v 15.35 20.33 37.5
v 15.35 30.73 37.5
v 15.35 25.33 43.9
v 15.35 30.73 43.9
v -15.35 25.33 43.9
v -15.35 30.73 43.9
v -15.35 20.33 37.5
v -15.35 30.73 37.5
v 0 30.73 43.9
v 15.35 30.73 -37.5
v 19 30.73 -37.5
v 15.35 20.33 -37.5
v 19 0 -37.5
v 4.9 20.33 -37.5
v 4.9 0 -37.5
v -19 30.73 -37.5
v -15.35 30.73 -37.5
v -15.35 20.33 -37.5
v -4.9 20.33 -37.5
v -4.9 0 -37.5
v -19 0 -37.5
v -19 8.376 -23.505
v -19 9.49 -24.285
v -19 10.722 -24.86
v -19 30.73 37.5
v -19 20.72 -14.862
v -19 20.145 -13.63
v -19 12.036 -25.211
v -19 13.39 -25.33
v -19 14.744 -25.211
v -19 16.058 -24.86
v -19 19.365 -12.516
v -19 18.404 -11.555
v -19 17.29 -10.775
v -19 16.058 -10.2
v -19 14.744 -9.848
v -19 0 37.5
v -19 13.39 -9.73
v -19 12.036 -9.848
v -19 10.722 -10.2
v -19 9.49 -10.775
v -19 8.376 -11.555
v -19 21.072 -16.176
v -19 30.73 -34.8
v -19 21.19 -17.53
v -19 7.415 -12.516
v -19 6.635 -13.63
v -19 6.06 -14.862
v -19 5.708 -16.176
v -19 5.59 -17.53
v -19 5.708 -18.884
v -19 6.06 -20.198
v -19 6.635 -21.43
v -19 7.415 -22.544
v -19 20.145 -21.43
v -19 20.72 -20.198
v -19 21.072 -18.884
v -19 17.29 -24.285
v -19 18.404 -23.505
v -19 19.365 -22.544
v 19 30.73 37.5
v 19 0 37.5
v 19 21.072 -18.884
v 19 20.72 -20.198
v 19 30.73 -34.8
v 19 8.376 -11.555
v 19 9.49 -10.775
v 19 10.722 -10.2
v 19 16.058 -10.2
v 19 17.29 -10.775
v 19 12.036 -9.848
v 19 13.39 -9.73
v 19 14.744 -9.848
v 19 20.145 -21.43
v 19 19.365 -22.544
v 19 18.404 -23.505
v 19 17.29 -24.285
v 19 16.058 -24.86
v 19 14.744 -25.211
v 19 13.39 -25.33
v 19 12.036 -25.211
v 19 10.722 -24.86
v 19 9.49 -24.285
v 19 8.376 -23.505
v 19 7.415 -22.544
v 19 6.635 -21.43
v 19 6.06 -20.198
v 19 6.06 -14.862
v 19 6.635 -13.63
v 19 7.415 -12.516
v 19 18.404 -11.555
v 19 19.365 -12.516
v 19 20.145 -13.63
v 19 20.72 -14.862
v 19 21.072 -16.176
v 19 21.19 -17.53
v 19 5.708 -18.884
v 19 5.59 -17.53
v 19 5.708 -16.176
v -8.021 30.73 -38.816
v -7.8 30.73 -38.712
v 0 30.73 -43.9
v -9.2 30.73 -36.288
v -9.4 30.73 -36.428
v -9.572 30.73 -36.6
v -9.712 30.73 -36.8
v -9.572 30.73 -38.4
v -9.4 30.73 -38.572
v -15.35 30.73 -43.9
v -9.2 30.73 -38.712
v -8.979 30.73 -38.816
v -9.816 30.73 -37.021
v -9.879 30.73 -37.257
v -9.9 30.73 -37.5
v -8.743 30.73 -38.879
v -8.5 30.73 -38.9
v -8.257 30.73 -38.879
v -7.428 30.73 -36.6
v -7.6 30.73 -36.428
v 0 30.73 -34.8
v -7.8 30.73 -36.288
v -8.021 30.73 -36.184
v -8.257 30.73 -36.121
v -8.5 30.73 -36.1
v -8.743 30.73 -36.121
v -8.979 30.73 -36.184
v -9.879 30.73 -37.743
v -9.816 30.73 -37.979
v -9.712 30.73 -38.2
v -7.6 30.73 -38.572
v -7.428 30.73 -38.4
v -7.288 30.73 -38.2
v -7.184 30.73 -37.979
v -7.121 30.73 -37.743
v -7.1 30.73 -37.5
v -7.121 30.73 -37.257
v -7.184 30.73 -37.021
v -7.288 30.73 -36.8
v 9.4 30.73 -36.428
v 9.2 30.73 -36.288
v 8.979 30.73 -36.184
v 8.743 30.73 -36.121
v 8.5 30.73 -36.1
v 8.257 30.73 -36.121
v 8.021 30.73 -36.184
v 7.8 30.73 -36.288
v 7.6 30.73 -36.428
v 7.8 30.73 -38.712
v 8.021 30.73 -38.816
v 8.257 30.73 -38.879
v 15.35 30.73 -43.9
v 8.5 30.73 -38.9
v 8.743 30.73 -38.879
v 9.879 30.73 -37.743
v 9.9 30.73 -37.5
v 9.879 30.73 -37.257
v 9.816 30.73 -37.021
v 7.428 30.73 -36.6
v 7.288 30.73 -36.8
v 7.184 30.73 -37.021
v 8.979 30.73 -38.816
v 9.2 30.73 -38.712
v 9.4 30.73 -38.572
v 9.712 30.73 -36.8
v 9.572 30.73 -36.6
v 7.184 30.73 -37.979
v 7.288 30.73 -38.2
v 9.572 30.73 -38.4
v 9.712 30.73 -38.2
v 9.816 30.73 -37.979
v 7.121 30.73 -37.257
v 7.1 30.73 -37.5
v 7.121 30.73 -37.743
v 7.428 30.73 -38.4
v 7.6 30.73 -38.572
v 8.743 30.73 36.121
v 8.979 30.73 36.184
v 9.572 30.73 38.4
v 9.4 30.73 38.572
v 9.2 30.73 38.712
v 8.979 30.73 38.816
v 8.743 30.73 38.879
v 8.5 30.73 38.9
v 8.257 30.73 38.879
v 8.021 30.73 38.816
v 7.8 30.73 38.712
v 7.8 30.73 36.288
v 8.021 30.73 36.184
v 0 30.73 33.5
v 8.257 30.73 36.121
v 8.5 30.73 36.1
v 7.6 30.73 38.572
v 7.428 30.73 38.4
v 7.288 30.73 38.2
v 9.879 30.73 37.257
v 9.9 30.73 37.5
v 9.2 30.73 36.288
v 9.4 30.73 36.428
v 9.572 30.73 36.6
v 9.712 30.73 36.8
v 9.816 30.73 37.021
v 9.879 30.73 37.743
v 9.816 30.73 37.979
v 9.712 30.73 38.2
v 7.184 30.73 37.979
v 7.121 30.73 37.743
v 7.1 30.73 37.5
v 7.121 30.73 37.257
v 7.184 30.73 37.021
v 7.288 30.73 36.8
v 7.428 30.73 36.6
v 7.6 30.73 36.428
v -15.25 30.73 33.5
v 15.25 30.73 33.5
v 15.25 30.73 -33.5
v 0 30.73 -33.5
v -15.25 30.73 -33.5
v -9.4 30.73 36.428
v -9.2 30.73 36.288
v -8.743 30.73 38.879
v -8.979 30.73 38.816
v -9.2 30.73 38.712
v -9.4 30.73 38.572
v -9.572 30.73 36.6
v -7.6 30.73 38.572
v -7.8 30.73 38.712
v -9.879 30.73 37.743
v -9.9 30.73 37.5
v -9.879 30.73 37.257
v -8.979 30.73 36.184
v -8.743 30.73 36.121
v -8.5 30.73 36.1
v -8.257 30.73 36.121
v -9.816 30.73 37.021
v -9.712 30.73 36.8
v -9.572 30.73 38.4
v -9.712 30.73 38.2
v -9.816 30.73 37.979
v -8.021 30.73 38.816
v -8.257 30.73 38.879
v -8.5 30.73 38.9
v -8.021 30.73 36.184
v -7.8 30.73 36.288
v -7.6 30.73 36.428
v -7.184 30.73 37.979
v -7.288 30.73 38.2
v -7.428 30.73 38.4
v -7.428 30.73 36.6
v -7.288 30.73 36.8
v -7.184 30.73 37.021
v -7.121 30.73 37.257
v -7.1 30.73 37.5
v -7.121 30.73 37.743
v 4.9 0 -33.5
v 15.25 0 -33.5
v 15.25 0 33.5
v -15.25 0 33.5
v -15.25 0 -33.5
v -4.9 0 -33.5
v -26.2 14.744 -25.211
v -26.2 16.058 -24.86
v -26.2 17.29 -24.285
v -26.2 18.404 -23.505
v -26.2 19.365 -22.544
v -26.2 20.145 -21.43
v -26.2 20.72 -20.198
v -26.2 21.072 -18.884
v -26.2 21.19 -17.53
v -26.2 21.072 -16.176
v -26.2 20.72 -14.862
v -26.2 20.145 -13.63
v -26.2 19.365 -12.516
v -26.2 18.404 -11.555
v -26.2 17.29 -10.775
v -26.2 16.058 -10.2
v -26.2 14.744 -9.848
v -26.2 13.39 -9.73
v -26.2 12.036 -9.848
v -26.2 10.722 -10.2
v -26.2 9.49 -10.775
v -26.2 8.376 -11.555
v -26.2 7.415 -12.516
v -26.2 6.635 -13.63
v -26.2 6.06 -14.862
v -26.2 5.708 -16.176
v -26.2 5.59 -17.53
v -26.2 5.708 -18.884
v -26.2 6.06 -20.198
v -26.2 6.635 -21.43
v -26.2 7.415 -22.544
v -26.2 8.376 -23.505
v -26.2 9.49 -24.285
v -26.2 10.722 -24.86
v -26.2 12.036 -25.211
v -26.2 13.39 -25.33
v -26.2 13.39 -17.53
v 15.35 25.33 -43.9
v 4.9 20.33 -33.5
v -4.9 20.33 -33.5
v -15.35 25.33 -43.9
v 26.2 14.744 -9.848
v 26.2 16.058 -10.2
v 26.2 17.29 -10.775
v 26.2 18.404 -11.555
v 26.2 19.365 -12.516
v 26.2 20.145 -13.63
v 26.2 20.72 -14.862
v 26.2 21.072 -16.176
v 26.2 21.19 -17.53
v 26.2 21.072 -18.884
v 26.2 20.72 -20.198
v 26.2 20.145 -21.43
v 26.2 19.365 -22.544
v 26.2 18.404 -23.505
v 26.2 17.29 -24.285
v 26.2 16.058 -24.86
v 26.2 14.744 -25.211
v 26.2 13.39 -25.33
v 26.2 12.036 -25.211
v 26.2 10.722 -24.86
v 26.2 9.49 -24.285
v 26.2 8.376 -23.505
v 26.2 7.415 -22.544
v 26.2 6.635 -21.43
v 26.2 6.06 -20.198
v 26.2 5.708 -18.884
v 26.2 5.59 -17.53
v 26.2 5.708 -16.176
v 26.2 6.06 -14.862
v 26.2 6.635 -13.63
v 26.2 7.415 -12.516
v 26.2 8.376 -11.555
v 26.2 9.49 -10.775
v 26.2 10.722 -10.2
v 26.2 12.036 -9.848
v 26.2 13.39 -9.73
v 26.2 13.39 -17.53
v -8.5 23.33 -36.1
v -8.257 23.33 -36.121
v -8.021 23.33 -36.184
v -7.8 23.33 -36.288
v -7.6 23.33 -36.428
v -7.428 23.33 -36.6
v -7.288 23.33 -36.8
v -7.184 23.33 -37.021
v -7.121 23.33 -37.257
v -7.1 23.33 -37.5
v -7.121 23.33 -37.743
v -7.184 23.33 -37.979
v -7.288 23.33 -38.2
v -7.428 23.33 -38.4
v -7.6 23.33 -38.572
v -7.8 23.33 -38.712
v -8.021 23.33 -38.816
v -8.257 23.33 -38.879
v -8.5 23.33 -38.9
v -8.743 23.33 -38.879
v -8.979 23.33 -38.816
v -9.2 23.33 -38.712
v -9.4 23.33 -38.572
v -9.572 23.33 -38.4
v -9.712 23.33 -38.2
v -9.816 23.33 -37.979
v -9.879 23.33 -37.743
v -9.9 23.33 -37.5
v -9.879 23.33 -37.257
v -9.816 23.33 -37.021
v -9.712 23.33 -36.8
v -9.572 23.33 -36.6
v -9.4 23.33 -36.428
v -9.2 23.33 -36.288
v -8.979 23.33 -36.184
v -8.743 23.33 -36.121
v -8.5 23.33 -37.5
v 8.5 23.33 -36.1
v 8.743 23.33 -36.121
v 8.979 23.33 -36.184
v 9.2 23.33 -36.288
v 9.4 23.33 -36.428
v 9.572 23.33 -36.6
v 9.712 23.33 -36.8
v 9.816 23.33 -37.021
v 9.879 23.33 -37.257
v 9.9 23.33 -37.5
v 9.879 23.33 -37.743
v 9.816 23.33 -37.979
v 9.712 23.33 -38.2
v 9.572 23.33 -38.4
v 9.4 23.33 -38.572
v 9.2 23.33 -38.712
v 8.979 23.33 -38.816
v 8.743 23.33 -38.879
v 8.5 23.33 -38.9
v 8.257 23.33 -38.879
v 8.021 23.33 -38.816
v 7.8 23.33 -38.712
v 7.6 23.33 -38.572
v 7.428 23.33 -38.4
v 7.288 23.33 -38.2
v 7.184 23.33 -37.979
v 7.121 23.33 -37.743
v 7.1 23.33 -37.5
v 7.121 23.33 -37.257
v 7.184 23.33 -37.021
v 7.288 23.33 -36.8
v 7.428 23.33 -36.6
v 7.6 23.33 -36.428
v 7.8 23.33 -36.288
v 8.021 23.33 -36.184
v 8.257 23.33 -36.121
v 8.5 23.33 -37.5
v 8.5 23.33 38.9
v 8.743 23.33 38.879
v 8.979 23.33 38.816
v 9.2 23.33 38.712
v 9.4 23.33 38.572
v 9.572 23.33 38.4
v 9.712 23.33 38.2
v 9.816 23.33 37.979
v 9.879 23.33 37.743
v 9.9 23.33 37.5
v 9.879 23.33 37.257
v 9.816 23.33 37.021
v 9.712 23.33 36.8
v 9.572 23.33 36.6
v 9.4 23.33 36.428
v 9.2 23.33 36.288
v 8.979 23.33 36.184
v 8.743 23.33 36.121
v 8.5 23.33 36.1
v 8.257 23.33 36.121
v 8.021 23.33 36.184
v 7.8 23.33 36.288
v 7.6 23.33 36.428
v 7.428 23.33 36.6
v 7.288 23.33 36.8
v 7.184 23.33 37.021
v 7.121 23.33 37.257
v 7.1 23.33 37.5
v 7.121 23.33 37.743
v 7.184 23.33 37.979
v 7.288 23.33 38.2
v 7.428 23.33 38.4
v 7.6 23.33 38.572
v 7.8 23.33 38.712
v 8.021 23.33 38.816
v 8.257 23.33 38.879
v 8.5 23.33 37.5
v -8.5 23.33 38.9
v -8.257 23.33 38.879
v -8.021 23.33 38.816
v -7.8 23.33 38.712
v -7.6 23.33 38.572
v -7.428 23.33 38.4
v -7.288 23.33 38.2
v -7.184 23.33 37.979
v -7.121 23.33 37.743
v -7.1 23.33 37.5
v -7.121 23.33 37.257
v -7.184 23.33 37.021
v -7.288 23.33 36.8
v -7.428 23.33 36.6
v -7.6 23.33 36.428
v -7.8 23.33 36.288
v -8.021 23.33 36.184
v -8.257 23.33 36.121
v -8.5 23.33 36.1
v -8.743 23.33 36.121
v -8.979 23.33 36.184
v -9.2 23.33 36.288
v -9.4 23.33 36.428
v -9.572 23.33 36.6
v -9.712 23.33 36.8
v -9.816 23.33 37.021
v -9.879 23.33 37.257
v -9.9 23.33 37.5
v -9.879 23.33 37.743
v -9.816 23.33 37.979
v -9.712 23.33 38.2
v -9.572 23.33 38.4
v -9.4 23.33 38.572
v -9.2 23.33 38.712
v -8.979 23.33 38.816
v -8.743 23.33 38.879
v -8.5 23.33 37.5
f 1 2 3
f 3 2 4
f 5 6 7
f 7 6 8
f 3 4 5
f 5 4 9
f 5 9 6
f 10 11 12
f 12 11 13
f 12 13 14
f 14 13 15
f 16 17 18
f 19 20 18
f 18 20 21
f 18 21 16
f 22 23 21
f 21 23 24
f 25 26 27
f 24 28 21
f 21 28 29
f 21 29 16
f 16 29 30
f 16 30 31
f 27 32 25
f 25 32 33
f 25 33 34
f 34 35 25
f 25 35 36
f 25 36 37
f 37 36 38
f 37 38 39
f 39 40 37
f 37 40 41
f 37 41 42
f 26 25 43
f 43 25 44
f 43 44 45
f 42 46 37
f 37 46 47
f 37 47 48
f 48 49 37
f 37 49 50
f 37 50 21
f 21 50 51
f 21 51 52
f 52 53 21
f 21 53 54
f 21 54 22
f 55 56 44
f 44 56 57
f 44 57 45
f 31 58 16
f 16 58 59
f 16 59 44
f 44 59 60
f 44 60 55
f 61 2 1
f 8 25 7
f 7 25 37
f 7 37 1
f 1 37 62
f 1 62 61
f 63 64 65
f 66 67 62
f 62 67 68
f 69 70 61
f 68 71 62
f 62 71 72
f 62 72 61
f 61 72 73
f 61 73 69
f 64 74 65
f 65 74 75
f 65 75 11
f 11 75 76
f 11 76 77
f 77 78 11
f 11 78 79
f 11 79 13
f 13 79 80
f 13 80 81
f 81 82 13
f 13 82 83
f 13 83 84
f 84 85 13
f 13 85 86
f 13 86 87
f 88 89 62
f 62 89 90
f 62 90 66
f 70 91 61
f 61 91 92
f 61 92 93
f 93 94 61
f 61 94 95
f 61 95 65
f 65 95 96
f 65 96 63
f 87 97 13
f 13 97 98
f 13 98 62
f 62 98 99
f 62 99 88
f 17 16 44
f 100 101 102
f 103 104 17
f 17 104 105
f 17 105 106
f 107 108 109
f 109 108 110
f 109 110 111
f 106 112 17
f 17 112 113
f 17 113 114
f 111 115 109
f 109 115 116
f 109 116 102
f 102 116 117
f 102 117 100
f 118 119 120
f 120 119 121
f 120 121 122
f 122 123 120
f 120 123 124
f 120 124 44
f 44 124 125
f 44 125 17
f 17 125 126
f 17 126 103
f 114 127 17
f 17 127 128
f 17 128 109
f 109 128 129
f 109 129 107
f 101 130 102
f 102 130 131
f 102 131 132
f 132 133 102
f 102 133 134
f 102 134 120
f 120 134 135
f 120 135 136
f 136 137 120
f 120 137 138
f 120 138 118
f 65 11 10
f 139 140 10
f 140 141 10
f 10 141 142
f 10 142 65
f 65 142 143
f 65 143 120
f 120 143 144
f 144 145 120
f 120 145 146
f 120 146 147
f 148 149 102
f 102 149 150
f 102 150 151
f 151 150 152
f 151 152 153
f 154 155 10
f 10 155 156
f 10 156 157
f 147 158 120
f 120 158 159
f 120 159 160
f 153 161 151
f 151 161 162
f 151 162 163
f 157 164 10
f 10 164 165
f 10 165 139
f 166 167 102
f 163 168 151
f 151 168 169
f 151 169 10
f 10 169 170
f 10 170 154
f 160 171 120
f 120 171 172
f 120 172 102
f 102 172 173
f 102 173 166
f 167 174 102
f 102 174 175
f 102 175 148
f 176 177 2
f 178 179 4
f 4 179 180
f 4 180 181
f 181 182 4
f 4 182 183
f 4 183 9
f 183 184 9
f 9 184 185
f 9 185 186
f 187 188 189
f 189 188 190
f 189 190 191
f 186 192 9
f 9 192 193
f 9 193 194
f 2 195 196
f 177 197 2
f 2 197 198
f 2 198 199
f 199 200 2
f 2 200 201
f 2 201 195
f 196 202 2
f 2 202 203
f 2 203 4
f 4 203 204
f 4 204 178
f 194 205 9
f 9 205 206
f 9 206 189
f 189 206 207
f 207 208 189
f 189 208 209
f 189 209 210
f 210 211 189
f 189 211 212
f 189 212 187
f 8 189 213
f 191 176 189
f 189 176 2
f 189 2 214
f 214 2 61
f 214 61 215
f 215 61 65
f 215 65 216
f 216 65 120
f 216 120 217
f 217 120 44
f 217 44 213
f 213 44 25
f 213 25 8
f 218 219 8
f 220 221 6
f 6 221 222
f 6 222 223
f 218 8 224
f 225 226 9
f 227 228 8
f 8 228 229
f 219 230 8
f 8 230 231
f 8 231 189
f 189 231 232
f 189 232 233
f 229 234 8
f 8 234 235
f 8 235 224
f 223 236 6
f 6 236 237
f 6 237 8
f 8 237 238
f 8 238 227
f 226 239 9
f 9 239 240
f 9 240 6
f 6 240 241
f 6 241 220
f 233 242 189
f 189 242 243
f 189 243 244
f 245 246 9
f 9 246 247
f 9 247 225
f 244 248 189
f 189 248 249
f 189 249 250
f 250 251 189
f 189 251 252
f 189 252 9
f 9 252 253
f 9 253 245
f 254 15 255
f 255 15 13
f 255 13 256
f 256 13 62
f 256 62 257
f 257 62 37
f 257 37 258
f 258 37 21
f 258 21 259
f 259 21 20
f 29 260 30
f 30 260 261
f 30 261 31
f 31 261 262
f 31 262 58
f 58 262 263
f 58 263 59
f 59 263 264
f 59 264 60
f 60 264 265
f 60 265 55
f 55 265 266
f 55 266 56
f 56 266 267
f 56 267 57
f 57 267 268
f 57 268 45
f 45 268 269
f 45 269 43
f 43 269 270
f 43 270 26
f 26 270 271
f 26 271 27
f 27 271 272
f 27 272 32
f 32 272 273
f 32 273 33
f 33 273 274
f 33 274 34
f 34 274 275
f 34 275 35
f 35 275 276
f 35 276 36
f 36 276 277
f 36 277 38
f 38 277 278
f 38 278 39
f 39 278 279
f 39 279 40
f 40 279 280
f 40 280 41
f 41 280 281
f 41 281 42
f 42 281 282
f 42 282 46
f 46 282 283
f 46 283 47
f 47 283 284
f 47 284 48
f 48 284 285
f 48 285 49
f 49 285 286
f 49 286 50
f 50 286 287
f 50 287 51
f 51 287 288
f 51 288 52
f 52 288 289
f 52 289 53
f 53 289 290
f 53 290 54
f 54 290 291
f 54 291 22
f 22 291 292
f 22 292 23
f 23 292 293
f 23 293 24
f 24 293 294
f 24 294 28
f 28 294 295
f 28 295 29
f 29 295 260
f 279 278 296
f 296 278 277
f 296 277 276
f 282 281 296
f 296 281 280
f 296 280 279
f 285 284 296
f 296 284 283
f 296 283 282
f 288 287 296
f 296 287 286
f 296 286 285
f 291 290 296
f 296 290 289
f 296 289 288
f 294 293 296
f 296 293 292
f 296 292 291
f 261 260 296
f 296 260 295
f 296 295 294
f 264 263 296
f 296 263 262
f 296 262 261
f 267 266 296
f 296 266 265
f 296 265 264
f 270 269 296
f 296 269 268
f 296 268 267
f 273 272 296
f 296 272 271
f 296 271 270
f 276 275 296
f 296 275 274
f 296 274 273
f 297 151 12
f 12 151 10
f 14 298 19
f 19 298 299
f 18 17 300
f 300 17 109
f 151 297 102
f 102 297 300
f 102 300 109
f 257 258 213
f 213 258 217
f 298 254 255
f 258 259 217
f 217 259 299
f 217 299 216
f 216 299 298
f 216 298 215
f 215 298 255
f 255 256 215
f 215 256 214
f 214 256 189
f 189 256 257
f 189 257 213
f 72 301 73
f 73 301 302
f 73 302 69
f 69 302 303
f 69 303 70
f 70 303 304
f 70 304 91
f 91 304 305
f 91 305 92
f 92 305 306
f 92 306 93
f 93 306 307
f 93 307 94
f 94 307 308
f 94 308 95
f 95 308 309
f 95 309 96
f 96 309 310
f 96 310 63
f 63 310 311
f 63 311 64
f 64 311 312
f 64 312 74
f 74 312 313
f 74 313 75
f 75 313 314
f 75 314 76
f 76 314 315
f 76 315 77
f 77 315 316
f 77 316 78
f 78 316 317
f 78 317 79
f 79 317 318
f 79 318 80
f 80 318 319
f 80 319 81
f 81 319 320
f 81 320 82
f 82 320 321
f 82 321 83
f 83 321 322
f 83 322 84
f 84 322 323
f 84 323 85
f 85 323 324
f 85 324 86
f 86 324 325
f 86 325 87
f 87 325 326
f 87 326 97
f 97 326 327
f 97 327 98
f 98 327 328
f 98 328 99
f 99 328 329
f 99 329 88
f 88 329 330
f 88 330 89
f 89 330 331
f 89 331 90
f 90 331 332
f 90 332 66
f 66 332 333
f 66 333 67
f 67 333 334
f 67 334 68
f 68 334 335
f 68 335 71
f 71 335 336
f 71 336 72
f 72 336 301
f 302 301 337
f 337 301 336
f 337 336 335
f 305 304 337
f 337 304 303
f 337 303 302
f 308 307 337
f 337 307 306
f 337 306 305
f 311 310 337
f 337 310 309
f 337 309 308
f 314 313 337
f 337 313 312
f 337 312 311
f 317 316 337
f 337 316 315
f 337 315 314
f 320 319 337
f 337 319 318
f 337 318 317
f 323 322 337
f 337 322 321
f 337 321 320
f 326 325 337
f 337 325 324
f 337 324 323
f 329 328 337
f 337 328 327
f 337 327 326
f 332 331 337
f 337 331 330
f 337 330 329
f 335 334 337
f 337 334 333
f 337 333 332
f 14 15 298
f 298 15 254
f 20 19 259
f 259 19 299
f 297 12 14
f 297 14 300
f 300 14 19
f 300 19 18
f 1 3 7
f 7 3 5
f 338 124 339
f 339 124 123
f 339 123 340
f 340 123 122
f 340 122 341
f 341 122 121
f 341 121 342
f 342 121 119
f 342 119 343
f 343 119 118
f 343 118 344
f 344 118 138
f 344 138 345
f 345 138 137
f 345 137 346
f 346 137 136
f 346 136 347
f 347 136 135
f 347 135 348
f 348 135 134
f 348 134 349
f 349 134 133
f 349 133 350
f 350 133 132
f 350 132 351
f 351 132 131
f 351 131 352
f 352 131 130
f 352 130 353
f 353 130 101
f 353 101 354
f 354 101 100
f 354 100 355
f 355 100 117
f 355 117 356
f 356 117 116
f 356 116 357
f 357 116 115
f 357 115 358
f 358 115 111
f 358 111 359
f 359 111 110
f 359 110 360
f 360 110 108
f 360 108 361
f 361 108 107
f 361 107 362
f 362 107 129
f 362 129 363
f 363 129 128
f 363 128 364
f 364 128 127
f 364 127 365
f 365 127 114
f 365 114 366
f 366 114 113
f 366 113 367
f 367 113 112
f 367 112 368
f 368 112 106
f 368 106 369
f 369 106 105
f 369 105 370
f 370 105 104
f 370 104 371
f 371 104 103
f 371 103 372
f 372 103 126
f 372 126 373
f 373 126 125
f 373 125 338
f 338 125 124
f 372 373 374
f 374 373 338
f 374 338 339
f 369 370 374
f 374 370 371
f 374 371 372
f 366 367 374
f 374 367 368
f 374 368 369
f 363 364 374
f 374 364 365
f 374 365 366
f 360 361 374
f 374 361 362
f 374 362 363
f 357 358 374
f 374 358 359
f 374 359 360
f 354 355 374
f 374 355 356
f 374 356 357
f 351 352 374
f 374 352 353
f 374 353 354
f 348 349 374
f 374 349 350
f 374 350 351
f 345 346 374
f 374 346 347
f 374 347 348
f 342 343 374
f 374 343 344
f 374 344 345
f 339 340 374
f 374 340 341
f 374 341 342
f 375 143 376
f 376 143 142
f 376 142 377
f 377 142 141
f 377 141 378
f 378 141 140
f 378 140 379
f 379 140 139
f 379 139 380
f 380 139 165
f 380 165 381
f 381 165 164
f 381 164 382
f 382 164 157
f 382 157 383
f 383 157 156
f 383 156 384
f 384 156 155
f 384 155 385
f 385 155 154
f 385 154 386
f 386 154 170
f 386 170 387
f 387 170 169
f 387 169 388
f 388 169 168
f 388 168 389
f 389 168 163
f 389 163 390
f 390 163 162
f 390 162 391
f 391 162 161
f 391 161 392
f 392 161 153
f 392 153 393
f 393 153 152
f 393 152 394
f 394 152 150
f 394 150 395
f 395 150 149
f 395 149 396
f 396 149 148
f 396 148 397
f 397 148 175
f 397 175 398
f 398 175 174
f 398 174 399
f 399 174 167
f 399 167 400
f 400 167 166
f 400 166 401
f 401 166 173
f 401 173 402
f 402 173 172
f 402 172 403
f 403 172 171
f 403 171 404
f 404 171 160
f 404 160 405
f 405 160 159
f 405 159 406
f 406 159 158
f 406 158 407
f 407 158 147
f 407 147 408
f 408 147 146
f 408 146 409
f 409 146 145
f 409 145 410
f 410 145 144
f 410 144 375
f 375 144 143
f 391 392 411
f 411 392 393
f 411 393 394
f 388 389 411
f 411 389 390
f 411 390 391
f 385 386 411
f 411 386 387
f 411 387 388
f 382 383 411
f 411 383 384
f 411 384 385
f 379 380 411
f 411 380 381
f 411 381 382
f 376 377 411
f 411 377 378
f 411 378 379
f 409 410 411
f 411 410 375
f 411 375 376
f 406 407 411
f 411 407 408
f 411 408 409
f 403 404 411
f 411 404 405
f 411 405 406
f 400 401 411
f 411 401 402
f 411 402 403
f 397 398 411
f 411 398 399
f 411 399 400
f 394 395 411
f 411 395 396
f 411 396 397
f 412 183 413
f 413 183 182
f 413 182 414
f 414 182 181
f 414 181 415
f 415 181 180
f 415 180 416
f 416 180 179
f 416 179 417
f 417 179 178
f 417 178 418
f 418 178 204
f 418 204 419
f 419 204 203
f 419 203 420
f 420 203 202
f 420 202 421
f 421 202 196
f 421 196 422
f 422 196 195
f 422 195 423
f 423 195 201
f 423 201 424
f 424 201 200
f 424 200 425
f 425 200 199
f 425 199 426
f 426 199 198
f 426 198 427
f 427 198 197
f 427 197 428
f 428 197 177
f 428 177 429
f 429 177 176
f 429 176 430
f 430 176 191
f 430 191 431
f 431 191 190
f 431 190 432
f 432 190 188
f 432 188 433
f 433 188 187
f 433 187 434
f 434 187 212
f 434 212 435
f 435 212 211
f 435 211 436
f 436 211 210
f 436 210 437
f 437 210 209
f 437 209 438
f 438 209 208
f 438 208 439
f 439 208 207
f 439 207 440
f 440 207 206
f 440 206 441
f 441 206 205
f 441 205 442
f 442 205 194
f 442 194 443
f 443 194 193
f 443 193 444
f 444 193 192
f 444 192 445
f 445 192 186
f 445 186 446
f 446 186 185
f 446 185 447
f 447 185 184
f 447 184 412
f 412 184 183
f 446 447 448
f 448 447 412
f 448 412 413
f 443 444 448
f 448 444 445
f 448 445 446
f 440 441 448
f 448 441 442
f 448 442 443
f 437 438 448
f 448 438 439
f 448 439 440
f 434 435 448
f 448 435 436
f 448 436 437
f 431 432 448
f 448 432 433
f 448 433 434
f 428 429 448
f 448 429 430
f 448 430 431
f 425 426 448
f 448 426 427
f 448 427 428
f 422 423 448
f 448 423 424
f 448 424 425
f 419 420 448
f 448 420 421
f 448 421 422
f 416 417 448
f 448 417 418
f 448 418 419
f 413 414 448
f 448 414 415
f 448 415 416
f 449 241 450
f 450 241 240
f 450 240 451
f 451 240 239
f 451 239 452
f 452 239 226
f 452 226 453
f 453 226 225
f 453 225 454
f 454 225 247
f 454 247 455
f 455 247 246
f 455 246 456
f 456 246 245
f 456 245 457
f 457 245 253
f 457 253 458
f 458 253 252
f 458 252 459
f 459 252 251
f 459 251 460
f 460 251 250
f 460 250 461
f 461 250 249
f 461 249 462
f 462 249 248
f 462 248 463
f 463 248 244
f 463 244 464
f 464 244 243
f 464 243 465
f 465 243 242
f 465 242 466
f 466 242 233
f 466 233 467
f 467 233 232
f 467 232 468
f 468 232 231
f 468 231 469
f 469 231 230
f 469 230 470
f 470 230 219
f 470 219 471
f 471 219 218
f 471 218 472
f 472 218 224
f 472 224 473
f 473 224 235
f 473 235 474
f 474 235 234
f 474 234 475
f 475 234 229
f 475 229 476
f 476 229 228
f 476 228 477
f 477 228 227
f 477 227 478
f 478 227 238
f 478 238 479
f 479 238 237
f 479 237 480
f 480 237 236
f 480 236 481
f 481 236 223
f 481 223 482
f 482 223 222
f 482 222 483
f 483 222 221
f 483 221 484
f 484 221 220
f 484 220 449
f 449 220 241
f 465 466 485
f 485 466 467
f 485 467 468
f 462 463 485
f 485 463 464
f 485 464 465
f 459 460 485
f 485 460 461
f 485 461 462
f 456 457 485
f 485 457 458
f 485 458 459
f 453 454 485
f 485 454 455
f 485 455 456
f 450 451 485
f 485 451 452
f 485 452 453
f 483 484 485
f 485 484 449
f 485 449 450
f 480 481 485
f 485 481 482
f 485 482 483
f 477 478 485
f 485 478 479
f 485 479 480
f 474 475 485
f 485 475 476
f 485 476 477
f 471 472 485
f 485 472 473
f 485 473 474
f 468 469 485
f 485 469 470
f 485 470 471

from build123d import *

# Parameters (mm, degrees)
SKETCH_1_W          = 38
SKETCH_1_H          = 75
EXTRUDE_1_DEPTH     = 30.73
SKETCH_2_R          = 7.8
EXTRUDE_2_DEPTH     = 7.2
SKETCH_3_W          = 30.7
SKETCH_3_H          = 10.4
EXTRUDE_3_DEPTH     = 6.4
SKETCH_5_W          = 30.5
SKETCH_5_H          = 67
CUT_EXTRUDE_1_DEPTH = 60.648829829
CUT_EXTRUDE_2_REACH = 87.181
SKETCH_6_W          = 9.8
SKETCH_6_H          = 20.33
CUT_EXTRUDE_3_REACH = 69.808
SKETCH_8_R          = 1.4
CUT_EXTRUDE_4_DEPTH = 7.4


with BuildPart() as part:
    # 草图1 → 凸台-拉伸1 (new body)
    with BuildSketch(Plane(origin=(0, 0, 0), x_dir=(1, 0, 0), z_dir=(0, 1, 0))):
        Rectangle(SKETCH_1_W, SKETCH_1_H)
    extrude(amount=EXTRUDE_1_DEPTH)

    # 草图2 → 凸台-拉伸2 (add)
    with BuildSketch(Plane.ZY.offset(19)):
        with Locations(Location((-17.53, 13.39, 0), (0, 0, 180))):
            Circle(SKETCH_2_R)
    extrude_2 = extrude(amount=EXTRUDE_2_DEPTH)

    # 草图3 → 凸台-拉伸3 (add)
    with BuildSketch(Plane(origin=(0, 0, -37.5), x_dir=(-1, 0, 0), z_dir=(0, 0, -1))):
        with Locations((0, 25.53)):
            Rectangle(SKETCH_3_W, SKETCH_3_H)
    extrude_3 = extrude(amount=EXTRUDE_3_DEPTH)

    # 草图5 → 切除-拉伸1 (cut, through all)
    with BuildSketch(Plane(origin=(0, 30.73, 0), x_dir=(1, 0, 0), z_dir=(0, 1, 0))):
        Rectangle(SKETCH_5_W, SKETCH_5_H)
    extrude(amount=-CUT_EXTRUDE_1_DEPTH, mode=Mode.SUBTRACT)

    # 镜向2: 凸台-拉伸2 across plane
    add(extrude_2.mirror(Plane(origin=(0, 0, 0), x_dir=(0, 0, 1), z_dir=(1, 0, 0))))

    # 草图6 → 切除-拉伸2 (cut, up to next)
    with BuildSketch(Plane(origin=(0, 0, -37.5), x_dir=(-1, 0, 0), z_dir=(0, 0, -1)), mode=Mode.PRIVATE) as cut_extrude_2_sk1:
        with Locations((0, 10.165)):
            Rectangle(SKETCH_6_W, SKETCH_6_H)
    cut_extrude_2_tool1 = extrude(cut_extrude_2_sk1.sketch, amount=-CUT_EXTRUDE_2_REACH, mode=Mode.PRIVATE) & part.part
    add(cut_extrude_2_tool1.solids().sort_by_distance((0, 10.165, -37.5))[0], mode=Mode.SUBTRACT)

    # 草图7 → 切除-拉伸3 (cut, up to next)
    with BuildSketch(Plane(origin=(15.35, 0, 0), x_dir=(0, 0, -1), z_dir=(1, 0, 0)), mode=Mode.PRIVATE) as cut_extrude_3_sk1:
        Polygon((37.5, 20.33), (43.9, 25.33022801), (43.9, 20.33), align=None)
    cut_extrude_3_tool1 = extrude(cut_extrude_3_sk1.sketch, amount=-CUT_EXTRUDE_3_REACH, mode=Mode.PRIVATE) & part.part
    cut_extrude_3 = cut_extrude_3_tool1.solids().sort_by_distance((15.35, 21.996743, -41.766667))[0]
    add(cut_extrude_3, mode=Mode.SUBTRACT)

    # 镜向4: 凸台-拉伸3, 切除-拉伸3 across plane
    add(extrude_3.mirror(Plane.XY))
    add(cut_extrude_3.mirror(Plane.XY), mode=Mode.SUBTRACT)

    # 草图8 → 切除-拉伸4 (cut)
    with BuildSketch(Plane(origin=(0, 30.73, 0), x_dir=(1, 0, 0), z_dir=(0, 1, 0))):
        with Locations(Location((-8.5, 37.5, 0), (0, 0, 270))):
            Circle(SKETCH_8_R)
        with Locations(Location((8.5, 37.5, 0), (0, 0, 90))):
            Circle(SKETCH_8_R)
        with Locations(Location((8.5, -37.5, 0), (0, 0, 270))):
            Circle(SKETCH_8_R)
        with Locations(Location((-8.5, -37.5, 0), (0, 0, 90))):
            Circle(SKETCH_8_R)
    extrude(amount=-CUT_EXTRUDE_4_DEPTH, mode=Mode.SUBTRACT)


solid = part.part
